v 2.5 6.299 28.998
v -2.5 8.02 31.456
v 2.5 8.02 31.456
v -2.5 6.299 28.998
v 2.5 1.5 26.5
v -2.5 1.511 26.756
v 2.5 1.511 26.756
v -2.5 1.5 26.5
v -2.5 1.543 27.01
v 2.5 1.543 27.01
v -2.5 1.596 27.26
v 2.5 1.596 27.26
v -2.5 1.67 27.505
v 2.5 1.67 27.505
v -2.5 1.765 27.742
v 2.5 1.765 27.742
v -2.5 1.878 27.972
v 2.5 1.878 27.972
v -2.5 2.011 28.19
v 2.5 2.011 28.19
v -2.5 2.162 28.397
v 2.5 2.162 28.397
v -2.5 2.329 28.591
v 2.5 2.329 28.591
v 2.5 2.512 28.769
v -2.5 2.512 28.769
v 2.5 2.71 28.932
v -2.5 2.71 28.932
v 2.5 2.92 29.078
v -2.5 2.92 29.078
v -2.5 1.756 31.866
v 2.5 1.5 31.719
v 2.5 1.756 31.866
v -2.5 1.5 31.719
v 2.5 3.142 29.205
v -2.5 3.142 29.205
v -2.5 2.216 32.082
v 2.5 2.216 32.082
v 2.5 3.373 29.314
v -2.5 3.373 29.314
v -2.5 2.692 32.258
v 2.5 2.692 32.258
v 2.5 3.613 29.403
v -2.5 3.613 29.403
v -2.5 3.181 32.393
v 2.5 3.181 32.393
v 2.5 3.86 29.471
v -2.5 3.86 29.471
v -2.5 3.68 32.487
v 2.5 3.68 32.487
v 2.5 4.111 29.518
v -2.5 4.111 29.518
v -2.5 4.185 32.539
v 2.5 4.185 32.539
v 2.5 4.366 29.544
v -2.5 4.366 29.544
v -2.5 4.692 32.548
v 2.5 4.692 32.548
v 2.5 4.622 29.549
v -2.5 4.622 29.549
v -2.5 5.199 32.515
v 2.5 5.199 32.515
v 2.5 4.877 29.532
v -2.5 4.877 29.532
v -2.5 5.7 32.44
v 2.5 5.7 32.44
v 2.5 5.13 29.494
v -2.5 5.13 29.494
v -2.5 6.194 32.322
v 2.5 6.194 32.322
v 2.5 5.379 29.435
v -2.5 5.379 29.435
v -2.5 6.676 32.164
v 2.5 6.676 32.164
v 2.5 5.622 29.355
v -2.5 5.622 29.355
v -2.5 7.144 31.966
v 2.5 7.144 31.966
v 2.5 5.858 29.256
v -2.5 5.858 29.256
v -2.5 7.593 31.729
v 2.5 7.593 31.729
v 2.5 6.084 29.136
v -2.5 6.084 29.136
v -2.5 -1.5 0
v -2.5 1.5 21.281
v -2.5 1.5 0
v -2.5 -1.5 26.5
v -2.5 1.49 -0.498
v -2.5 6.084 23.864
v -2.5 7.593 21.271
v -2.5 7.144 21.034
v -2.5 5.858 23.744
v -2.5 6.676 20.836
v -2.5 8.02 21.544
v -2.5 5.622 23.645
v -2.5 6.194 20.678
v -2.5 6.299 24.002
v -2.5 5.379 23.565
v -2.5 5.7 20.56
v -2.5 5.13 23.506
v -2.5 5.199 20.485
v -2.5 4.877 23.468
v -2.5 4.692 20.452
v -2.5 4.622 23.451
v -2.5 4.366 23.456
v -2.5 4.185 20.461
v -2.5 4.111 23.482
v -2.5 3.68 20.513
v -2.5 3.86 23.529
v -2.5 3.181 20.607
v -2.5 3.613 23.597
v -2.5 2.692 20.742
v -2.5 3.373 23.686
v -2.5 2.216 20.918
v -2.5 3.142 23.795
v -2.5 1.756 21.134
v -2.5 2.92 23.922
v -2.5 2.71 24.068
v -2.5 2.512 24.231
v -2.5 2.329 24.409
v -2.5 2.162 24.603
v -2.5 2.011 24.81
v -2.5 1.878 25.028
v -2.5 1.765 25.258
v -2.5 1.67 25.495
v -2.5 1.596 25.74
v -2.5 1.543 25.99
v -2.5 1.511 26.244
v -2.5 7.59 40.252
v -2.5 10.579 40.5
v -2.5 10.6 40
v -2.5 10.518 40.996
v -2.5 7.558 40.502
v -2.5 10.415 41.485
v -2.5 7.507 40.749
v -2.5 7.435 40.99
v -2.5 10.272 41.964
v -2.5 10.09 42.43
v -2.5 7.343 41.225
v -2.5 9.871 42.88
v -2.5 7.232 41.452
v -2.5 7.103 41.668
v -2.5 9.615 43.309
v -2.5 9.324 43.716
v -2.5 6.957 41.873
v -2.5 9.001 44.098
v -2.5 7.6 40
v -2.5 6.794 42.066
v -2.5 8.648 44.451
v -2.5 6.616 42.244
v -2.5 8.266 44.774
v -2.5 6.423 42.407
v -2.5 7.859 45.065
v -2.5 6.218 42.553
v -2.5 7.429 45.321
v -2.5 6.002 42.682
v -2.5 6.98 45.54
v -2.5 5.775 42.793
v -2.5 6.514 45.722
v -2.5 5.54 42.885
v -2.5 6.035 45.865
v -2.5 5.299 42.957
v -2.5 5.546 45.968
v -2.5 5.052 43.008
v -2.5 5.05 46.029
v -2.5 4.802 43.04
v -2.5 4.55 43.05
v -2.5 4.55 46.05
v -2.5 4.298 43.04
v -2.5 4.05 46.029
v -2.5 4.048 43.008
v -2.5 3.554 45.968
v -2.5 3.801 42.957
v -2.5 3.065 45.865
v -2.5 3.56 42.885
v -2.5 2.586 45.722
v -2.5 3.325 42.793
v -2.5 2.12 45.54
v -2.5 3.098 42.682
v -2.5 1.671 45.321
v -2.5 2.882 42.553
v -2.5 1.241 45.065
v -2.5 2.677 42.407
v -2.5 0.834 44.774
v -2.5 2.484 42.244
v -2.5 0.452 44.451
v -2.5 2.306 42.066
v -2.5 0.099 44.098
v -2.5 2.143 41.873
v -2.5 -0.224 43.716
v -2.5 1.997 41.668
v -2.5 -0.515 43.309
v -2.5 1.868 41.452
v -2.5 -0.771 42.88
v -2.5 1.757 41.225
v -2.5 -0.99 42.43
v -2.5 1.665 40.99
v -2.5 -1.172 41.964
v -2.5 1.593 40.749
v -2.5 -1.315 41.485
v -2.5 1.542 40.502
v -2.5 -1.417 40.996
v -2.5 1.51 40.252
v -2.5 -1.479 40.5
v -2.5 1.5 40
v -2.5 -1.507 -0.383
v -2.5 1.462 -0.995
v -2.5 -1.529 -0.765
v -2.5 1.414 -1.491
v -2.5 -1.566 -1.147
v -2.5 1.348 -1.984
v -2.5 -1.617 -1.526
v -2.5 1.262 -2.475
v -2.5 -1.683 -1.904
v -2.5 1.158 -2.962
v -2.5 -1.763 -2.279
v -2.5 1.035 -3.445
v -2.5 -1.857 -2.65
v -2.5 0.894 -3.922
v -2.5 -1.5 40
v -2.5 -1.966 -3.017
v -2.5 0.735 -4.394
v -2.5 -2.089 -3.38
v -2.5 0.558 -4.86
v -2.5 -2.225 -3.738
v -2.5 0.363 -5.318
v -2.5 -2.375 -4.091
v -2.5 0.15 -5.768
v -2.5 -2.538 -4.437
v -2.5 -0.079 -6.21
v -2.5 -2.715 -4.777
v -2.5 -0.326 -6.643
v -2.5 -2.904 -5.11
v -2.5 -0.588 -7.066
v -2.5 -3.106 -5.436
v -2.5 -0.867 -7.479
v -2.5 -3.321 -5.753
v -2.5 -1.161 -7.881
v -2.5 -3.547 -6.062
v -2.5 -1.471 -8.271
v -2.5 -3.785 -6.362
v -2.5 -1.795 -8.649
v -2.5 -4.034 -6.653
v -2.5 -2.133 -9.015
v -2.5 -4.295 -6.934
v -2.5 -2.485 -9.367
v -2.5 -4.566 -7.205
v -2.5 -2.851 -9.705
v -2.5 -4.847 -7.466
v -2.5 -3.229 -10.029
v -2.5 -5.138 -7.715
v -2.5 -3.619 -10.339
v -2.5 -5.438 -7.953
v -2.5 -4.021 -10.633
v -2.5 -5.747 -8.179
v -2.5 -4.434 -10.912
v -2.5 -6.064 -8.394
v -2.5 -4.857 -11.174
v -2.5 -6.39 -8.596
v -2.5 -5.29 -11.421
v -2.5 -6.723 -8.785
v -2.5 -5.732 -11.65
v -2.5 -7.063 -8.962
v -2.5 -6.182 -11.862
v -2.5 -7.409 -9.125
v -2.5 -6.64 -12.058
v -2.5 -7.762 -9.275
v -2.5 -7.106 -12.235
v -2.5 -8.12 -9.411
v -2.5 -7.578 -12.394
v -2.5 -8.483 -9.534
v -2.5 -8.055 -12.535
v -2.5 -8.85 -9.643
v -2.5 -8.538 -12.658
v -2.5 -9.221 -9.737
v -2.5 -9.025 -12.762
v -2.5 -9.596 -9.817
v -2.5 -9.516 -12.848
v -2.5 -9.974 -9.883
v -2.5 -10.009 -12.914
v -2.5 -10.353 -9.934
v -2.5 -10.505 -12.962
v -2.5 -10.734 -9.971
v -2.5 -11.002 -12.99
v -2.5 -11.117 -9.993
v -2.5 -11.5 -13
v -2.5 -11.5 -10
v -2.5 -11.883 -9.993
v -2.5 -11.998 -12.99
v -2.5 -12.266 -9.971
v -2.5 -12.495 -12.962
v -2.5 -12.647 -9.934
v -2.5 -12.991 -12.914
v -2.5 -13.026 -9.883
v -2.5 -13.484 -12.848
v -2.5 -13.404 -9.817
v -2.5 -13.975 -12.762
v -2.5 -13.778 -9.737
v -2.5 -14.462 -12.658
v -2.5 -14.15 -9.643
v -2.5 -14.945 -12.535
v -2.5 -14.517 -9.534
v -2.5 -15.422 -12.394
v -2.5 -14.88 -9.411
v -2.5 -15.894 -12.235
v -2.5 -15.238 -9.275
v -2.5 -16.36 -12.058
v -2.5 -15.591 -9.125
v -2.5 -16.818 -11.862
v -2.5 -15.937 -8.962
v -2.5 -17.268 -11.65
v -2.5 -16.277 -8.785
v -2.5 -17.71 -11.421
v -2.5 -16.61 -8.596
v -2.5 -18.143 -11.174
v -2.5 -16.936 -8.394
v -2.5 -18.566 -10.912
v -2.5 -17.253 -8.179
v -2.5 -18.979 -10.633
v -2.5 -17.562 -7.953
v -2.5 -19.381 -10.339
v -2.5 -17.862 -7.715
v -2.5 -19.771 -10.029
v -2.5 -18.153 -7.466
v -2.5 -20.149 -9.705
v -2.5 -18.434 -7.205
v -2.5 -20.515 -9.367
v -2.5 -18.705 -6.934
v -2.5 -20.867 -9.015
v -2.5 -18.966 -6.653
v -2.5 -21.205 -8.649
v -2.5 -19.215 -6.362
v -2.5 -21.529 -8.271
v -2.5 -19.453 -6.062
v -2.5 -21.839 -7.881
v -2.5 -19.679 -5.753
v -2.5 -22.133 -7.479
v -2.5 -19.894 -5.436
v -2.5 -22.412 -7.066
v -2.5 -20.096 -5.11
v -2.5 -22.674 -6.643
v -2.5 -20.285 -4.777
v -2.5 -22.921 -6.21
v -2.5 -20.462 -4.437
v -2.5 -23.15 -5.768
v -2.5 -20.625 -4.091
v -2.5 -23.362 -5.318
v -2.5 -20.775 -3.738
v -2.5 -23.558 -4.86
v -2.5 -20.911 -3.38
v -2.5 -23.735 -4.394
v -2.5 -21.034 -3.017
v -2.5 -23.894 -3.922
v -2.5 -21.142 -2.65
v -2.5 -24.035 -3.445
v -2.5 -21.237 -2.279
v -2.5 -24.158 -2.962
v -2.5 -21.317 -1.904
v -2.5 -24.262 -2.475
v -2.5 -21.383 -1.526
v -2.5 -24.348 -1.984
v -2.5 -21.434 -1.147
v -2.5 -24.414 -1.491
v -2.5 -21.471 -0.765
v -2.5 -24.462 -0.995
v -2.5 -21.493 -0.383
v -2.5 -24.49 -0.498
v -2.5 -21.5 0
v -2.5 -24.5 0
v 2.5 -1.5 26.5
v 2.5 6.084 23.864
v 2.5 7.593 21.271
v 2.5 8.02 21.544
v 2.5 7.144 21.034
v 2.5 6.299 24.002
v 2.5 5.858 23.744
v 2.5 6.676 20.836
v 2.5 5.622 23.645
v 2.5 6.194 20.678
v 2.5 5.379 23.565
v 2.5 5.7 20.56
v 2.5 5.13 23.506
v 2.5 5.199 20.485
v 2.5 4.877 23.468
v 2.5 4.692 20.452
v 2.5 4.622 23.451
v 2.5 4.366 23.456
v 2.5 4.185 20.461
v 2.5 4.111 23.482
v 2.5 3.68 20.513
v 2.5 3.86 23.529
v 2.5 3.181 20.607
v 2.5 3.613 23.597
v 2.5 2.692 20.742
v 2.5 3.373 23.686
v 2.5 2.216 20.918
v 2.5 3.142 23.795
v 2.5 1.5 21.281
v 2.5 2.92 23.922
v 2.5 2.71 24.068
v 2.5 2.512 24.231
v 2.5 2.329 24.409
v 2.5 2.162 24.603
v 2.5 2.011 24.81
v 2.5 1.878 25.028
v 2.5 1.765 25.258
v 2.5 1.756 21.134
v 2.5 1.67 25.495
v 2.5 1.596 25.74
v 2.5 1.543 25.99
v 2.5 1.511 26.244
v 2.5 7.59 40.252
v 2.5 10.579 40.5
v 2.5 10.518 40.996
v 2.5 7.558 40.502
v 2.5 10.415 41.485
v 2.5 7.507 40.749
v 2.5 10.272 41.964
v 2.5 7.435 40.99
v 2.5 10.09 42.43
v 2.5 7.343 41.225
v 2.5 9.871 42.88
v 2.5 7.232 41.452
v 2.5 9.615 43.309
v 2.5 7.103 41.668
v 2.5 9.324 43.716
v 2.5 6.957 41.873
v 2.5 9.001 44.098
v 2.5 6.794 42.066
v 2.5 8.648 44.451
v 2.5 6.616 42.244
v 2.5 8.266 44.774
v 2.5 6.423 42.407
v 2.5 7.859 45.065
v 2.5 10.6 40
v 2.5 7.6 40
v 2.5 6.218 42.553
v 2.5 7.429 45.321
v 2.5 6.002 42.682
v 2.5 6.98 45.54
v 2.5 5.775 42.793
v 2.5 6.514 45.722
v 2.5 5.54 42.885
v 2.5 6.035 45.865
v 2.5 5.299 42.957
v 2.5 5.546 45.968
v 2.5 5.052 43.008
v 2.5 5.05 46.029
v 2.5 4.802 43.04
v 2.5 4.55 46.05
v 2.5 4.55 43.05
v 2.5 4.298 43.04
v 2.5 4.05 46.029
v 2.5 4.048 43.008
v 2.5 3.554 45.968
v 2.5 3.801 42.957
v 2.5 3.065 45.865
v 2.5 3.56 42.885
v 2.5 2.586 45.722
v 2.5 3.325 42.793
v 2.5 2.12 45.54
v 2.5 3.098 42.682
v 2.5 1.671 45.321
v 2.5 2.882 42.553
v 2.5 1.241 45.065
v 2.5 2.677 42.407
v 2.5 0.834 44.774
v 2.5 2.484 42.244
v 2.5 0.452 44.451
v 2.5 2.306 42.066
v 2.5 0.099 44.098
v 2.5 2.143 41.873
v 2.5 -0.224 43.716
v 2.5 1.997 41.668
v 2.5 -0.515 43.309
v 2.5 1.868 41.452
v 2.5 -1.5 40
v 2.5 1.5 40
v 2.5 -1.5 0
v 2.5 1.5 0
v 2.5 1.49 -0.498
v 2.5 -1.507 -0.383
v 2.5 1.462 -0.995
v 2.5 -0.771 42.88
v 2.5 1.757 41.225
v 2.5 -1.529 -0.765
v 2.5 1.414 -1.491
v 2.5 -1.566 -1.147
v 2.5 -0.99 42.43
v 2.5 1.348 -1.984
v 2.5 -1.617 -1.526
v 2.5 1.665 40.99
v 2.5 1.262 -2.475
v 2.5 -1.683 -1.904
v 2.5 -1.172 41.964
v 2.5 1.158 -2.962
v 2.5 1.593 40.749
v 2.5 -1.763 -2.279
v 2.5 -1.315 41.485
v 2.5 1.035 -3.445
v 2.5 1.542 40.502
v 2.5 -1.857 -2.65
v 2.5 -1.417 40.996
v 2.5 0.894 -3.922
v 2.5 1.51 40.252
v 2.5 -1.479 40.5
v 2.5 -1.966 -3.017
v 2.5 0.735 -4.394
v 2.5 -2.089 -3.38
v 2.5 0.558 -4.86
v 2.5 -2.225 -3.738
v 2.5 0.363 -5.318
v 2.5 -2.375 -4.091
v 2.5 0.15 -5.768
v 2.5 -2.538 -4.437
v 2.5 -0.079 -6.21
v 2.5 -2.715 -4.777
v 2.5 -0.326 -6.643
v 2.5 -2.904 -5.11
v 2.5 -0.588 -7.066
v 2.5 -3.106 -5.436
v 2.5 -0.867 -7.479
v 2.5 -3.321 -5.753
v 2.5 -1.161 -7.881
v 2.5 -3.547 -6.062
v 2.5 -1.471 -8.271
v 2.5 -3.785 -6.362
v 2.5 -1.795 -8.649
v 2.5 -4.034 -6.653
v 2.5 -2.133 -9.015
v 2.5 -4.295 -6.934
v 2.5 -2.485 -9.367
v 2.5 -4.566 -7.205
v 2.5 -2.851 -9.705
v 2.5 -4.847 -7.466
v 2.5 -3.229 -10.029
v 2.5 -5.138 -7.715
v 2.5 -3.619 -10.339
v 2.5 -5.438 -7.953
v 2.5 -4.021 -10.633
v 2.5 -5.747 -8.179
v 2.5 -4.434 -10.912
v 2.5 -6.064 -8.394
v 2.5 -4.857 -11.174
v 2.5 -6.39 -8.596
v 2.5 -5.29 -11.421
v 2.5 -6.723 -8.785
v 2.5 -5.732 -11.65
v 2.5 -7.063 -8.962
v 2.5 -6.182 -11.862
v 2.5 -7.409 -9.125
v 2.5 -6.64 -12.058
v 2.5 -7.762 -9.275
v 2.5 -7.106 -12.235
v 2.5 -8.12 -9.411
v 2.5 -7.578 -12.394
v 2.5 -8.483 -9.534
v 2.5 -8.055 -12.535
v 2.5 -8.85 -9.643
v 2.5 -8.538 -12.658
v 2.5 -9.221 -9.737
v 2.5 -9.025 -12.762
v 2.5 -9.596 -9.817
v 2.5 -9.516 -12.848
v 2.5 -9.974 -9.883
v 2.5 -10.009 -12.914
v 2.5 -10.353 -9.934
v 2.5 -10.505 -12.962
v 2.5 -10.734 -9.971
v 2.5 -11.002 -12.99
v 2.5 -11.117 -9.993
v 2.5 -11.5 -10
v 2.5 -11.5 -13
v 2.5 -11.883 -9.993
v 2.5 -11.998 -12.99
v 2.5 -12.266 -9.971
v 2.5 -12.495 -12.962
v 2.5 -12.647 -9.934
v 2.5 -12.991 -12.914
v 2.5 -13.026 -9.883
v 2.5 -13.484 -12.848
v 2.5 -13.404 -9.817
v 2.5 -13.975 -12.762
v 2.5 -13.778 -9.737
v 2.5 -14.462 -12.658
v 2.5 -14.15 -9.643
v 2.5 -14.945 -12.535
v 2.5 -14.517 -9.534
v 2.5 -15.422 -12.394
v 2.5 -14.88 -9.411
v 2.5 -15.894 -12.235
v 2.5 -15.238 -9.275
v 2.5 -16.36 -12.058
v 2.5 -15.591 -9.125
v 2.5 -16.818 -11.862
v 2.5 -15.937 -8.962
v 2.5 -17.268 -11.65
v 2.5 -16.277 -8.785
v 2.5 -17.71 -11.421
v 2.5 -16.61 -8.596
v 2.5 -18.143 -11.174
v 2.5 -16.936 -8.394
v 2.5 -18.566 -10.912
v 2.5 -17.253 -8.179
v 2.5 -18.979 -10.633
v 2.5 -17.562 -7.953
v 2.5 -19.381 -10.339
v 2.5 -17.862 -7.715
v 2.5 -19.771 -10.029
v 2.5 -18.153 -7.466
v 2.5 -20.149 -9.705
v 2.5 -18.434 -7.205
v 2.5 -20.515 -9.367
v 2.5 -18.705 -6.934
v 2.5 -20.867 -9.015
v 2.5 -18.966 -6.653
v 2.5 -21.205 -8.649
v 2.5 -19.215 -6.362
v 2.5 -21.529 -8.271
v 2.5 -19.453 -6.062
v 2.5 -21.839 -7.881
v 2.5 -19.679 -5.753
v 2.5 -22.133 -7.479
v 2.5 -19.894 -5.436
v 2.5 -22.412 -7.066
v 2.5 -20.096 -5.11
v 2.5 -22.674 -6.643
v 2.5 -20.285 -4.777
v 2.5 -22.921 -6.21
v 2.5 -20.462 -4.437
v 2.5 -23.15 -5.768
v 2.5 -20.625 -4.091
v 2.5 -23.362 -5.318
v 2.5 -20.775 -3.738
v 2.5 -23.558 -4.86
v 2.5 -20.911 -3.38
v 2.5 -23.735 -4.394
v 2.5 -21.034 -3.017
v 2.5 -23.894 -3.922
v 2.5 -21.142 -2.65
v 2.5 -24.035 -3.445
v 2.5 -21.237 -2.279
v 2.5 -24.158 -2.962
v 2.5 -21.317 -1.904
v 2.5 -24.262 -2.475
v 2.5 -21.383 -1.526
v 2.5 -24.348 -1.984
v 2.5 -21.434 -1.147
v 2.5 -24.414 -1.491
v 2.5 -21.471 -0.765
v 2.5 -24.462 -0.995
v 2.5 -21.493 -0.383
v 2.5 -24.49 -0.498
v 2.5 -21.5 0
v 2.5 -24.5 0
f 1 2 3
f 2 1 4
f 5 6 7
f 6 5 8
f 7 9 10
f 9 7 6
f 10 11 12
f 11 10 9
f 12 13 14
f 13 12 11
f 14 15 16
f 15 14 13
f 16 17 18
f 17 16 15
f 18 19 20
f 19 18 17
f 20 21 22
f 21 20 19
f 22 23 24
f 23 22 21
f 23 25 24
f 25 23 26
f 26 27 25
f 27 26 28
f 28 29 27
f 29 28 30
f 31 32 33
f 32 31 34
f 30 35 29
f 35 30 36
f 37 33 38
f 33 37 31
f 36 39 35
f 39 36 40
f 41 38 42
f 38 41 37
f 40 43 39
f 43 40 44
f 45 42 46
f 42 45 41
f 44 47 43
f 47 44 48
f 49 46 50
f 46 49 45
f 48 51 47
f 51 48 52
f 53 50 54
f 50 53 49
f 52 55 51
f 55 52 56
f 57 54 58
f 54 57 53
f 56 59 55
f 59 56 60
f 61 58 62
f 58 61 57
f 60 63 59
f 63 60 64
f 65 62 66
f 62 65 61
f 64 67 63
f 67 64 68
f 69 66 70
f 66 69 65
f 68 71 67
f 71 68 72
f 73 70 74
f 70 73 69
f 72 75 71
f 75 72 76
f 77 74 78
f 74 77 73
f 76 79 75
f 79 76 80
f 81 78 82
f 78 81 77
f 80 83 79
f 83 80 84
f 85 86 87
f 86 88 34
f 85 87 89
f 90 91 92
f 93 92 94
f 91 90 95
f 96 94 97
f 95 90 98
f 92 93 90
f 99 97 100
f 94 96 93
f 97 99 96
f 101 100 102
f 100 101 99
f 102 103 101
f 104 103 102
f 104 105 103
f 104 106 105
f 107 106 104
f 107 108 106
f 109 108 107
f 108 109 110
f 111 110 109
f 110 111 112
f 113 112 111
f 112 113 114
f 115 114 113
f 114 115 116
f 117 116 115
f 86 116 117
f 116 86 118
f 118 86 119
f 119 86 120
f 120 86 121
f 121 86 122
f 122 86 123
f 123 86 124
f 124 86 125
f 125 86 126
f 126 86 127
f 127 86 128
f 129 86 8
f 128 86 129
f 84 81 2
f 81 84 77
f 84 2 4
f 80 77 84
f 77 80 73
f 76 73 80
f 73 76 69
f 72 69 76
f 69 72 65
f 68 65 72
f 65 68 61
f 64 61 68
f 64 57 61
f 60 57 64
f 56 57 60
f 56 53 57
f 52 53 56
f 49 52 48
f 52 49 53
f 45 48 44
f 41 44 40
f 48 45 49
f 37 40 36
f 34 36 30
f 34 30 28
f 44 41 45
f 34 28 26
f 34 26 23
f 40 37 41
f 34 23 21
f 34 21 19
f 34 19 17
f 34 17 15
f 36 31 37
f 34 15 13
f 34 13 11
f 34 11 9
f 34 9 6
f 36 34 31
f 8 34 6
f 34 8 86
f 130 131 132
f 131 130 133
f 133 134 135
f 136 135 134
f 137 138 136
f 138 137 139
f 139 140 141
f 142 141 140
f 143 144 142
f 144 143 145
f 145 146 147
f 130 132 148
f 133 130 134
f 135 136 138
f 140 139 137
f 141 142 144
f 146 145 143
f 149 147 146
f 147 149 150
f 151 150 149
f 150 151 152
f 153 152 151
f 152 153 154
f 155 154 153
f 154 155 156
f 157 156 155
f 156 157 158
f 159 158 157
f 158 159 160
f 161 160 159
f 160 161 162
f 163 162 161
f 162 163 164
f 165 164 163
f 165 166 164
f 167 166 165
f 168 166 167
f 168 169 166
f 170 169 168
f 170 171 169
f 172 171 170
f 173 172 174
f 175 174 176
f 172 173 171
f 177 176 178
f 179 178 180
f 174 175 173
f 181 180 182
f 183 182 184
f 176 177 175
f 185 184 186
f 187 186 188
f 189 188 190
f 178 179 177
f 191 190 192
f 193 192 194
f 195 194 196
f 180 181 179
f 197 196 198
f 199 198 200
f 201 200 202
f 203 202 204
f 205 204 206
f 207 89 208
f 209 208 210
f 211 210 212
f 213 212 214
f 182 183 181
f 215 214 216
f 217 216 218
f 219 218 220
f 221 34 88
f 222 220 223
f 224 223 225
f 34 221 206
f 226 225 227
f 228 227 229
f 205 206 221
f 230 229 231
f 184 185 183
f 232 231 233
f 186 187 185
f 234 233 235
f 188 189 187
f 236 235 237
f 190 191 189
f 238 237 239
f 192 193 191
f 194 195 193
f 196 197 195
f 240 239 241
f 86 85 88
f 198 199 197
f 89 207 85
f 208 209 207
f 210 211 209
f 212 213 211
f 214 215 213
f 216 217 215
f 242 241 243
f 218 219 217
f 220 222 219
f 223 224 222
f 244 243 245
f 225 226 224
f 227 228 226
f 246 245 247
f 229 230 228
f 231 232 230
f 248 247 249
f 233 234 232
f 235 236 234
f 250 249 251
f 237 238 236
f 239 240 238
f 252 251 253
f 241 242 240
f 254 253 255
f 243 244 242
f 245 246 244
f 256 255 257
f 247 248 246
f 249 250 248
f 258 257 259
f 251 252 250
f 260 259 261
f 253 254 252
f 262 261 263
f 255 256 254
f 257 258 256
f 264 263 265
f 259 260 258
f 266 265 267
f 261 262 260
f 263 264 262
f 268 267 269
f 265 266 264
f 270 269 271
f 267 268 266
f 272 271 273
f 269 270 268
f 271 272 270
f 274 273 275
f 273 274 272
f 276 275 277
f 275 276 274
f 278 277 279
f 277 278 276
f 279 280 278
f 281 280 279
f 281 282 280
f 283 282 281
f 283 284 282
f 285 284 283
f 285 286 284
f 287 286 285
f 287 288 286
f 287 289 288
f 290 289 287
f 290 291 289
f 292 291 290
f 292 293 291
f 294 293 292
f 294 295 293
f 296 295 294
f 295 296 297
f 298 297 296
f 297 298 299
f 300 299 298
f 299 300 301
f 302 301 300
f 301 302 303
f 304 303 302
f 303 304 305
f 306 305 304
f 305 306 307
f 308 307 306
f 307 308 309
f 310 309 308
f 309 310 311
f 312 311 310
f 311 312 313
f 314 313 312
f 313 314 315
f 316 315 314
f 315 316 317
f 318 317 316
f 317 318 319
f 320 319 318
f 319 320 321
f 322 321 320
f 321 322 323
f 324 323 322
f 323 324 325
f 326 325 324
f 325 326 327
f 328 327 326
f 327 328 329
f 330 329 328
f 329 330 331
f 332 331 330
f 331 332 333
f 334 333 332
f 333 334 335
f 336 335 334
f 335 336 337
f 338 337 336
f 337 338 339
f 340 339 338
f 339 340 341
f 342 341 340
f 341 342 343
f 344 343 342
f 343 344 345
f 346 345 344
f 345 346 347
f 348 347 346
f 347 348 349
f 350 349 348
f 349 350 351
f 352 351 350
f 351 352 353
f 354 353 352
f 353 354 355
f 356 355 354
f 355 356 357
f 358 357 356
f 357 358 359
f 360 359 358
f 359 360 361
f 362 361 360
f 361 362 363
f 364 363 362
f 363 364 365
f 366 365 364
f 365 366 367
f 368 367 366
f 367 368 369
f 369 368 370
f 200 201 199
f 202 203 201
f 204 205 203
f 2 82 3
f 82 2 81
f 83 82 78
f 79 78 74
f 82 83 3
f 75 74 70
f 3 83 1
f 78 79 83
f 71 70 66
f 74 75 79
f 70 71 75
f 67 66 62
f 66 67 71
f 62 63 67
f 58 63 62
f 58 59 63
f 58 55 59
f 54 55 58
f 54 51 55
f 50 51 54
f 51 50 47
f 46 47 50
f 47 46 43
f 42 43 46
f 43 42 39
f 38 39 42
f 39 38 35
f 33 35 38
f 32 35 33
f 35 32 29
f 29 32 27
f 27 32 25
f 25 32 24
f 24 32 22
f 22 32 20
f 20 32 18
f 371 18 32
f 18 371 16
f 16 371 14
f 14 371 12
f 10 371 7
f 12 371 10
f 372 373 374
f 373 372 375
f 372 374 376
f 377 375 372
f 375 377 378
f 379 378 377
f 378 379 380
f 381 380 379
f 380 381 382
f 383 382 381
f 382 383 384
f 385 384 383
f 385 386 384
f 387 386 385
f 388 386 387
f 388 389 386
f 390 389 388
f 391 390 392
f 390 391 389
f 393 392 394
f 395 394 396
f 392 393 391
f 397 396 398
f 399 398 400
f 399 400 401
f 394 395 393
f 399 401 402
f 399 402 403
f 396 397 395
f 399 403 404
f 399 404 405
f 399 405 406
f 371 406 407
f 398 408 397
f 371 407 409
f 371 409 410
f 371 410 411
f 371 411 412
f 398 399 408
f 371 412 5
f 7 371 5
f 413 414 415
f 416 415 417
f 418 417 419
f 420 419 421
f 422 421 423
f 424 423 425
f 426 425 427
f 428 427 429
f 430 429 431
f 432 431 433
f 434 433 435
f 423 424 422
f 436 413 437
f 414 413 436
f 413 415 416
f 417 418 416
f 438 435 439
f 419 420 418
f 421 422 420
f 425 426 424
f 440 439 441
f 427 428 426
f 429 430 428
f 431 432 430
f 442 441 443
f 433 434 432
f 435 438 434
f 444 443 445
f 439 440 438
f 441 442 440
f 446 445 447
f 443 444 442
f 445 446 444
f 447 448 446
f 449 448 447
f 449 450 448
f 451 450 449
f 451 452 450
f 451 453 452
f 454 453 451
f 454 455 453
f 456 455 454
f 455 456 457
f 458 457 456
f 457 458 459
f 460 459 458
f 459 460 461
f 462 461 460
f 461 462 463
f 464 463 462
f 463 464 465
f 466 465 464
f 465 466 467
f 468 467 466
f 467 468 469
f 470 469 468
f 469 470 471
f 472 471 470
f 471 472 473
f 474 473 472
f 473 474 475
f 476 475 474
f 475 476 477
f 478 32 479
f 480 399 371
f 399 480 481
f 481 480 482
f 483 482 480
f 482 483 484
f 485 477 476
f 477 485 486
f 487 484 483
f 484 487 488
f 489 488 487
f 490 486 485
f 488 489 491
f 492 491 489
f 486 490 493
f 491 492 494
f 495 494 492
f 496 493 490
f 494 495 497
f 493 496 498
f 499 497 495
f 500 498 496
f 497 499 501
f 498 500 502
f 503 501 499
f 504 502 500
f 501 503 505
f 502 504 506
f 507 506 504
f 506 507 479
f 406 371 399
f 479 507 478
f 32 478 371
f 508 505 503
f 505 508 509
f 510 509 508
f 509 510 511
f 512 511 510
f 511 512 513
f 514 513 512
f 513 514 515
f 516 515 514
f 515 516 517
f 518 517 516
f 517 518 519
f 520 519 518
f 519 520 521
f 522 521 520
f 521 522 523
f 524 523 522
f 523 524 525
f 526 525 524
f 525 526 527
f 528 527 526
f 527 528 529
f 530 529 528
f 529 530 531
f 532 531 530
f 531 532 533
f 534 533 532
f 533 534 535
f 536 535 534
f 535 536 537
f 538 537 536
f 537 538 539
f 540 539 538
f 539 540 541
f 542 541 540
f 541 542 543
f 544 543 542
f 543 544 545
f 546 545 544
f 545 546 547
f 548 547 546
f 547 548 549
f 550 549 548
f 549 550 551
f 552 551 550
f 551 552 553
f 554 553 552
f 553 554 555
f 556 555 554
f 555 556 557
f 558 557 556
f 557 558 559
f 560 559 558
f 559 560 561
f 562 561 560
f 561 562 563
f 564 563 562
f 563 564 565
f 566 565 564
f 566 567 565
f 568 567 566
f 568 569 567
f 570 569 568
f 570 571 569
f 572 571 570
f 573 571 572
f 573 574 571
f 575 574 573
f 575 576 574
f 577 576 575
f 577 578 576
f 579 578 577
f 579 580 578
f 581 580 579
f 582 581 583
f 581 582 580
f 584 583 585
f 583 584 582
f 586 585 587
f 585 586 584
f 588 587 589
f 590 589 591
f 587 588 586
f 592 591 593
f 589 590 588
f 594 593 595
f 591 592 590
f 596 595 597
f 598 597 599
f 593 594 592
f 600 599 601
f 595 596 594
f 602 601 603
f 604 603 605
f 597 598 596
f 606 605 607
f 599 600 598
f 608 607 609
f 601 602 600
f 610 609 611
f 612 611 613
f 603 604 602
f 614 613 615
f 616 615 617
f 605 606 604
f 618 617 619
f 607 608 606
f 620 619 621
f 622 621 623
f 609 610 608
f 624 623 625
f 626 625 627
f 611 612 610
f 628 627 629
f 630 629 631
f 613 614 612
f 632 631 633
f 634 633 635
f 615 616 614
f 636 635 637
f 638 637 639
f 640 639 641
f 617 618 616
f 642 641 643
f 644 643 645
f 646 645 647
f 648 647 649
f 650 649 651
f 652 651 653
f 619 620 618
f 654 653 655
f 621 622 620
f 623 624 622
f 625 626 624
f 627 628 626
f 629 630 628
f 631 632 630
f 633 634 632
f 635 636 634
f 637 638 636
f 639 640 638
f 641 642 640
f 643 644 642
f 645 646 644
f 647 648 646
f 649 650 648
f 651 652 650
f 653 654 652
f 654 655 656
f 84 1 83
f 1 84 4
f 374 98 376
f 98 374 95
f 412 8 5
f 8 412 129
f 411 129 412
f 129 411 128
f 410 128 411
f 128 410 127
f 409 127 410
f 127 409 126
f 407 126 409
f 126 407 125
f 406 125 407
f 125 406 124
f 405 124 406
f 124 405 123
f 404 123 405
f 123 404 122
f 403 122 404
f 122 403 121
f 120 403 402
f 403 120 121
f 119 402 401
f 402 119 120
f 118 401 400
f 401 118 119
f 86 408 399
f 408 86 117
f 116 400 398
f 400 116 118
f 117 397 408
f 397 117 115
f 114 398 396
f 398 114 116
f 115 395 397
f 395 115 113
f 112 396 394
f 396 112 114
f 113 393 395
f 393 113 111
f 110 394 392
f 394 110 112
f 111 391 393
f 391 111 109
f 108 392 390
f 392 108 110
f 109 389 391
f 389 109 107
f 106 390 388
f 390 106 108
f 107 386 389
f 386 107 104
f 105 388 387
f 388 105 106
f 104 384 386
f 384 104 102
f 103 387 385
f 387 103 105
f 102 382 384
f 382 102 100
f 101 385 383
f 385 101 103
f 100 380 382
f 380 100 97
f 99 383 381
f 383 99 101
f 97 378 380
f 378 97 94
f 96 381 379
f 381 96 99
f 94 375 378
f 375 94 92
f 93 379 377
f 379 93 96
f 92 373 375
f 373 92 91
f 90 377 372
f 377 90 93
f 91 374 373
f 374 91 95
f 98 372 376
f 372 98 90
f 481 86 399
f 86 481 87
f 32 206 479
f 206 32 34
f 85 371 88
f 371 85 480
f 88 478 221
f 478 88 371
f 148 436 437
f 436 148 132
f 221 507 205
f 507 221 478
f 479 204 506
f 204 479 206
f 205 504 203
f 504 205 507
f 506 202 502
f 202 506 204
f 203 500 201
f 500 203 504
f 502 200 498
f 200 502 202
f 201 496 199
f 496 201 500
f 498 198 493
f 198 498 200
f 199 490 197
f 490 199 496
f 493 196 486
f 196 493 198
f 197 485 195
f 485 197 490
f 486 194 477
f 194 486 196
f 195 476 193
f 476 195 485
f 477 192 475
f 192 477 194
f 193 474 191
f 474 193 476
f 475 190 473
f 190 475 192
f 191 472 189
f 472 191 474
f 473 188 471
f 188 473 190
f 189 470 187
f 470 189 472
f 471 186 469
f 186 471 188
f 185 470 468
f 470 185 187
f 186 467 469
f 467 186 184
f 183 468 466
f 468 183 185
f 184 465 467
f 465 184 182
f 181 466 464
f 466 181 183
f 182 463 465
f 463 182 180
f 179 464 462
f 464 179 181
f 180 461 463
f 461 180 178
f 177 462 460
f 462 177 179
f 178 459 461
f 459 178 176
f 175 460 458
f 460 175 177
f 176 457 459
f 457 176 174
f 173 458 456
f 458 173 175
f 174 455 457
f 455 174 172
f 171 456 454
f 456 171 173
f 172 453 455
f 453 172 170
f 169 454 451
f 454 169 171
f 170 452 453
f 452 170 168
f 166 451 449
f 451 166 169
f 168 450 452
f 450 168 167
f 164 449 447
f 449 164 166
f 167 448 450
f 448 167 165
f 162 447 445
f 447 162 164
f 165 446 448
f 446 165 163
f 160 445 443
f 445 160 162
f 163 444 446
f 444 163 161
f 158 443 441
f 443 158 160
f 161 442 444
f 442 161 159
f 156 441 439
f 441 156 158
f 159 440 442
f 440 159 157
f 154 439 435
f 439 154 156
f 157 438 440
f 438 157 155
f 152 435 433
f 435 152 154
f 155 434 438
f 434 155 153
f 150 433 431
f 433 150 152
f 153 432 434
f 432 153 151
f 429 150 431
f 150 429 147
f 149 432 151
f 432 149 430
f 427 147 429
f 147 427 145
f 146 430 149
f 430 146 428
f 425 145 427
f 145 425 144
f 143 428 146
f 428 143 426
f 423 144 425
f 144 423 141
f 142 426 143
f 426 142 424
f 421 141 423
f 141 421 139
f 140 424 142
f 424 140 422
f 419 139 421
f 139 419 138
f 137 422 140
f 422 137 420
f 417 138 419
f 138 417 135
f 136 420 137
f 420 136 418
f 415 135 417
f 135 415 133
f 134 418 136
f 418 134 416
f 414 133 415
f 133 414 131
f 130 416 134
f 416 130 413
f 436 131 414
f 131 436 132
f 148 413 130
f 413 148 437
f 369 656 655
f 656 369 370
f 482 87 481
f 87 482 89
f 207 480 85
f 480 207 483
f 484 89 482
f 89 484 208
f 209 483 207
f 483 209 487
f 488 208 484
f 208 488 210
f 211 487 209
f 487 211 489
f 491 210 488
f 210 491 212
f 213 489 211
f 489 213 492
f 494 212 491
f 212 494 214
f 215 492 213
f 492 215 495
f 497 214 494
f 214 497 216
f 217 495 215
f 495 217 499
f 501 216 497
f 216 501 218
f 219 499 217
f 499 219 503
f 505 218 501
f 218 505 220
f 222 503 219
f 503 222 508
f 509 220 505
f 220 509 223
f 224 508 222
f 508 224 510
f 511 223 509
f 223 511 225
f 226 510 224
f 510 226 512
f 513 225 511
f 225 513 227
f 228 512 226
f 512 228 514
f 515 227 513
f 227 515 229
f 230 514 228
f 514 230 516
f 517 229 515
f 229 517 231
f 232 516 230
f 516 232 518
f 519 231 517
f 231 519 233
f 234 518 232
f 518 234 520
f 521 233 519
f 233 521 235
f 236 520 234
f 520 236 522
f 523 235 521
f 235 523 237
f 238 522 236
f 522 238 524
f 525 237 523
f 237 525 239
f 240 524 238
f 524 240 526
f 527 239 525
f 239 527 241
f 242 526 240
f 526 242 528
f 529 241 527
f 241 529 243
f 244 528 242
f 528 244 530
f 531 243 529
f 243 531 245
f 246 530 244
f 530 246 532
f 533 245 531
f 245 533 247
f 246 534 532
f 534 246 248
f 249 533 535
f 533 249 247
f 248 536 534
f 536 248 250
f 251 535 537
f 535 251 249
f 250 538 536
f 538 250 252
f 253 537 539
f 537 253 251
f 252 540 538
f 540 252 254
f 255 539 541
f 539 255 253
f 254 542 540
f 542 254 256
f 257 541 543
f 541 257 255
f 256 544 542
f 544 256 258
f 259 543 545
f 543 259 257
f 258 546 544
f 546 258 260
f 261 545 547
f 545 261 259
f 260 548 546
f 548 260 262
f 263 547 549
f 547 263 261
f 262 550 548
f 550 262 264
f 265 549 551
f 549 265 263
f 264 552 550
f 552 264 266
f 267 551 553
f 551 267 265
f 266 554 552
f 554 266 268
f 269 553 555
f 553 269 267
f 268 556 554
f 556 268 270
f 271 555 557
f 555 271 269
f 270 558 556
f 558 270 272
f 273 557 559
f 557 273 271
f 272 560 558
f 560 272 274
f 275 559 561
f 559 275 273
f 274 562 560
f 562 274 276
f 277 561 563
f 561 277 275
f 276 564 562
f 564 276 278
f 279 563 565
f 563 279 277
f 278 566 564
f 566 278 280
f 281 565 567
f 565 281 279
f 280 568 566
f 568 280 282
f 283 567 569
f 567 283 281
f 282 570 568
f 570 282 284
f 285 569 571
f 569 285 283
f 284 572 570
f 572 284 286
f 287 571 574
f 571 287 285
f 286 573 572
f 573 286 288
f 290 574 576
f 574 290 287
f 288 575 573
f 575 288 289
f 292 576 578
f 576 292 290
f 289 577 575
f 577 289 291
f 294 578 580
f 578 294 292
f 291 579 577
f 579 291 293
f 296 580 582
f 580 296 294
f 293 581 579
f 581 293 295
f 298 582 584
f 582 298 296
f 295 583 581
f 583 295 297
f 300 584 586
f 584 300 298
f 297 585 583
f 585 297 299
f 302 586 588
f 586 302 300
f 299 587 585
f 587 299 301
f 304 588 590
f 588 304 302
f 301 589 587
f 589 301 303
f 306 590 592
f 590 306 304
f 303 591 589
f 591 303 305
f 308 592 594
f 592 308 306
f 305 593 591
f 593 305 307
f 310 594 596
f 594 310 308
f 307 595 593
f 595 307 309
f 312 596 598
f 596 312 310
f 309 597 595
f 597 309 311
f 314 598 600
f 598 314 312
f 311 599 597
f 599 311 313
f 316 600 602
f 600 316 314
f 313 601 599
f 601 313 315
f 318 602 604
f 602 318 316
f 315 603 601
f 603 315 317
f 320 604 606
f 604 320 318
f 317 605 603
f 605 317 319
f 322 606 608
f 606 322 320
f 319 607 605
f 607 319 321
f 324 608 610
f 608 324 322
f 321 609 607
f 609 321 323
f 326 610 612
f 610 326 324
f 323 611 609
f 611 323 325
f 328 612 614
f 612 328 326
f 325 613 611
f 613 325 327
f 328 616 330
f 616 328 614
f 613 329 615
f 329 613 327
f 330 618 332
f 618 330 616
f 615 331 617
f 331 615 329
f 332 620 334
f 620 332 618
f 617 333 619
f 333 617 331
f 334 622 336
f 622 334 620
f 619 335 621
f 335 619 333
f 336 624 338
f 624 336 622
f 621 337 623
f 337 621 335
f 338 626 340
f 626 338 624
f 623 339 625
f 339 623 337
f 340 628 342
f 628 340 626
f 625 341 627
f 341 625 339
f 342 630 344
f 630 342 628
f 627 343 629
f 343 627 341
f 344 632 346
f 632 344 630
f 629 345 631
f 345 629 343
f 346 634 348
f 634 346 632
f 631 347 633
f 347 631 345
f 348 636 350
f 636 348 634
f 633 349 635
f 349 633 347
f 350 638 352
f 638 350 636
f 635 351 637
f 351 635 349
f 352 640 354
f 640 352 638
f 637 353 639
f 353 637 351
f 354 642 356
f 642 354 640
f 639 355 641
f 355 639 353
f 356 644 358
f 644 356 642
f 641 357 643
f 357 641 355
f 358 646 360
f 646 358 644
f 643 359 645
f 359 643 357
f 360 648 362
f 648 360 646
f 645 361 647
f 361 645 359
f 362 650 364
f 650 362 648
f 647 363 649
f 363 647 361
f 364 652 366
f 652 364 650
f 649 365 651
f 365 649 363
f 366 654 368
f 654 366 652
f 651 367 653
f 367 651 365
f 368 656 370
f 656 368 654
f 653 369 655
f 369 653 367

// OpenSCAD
width=5;
depth=3;
length=40; // of the straight part

top_diameter=6.1;  //6.1mm for the thick bars, 3.3mm for the thin ones
top_angle=180;

bottom_diameter=20;
bottom_angle=180;
second_attachment_angle=125;

bar_separation=13.5;

$fa=1;
$fs=0.5;

module center() {
  linear_extrude(length)
  square([width,depth],true);
};

module top() {
  translate([width/2,top_diameter/2+depth/2,length])
  rotate([90,0,-90])
  rotate_extrude(angle=top_angle) {
    translate([top_diameter/2,0,0])
    square([depth,width],false);
  }
};

module second_bar_attachment() {
  translate([width/2,top_diameter/2+depth/2,length-bar_separation])
  rotate([90,0,-90])
  union() {
      rotate_extrude(angle=second_attachment_angle) {
        translate([top_diameter/2,0,0])
        square([depth,width],false);
      }
      rotate_extrude(angle=-second_attachment_angle) {
        translate([top_diameter/2,0,0])
        square([depth,width],false);
      }
  }
}; 

module bottom() {
  translate([width/2,-bottom_diameter/2-depth/2,0])
  rotate([-90,0,90])
  rotate_extrude(angle=bottom_angle) {
    translate([bottom_diameter/2,0,0])
    square([depth,width],false);
  }
};

center();
top();
bottom();
second_bar_attachment();
